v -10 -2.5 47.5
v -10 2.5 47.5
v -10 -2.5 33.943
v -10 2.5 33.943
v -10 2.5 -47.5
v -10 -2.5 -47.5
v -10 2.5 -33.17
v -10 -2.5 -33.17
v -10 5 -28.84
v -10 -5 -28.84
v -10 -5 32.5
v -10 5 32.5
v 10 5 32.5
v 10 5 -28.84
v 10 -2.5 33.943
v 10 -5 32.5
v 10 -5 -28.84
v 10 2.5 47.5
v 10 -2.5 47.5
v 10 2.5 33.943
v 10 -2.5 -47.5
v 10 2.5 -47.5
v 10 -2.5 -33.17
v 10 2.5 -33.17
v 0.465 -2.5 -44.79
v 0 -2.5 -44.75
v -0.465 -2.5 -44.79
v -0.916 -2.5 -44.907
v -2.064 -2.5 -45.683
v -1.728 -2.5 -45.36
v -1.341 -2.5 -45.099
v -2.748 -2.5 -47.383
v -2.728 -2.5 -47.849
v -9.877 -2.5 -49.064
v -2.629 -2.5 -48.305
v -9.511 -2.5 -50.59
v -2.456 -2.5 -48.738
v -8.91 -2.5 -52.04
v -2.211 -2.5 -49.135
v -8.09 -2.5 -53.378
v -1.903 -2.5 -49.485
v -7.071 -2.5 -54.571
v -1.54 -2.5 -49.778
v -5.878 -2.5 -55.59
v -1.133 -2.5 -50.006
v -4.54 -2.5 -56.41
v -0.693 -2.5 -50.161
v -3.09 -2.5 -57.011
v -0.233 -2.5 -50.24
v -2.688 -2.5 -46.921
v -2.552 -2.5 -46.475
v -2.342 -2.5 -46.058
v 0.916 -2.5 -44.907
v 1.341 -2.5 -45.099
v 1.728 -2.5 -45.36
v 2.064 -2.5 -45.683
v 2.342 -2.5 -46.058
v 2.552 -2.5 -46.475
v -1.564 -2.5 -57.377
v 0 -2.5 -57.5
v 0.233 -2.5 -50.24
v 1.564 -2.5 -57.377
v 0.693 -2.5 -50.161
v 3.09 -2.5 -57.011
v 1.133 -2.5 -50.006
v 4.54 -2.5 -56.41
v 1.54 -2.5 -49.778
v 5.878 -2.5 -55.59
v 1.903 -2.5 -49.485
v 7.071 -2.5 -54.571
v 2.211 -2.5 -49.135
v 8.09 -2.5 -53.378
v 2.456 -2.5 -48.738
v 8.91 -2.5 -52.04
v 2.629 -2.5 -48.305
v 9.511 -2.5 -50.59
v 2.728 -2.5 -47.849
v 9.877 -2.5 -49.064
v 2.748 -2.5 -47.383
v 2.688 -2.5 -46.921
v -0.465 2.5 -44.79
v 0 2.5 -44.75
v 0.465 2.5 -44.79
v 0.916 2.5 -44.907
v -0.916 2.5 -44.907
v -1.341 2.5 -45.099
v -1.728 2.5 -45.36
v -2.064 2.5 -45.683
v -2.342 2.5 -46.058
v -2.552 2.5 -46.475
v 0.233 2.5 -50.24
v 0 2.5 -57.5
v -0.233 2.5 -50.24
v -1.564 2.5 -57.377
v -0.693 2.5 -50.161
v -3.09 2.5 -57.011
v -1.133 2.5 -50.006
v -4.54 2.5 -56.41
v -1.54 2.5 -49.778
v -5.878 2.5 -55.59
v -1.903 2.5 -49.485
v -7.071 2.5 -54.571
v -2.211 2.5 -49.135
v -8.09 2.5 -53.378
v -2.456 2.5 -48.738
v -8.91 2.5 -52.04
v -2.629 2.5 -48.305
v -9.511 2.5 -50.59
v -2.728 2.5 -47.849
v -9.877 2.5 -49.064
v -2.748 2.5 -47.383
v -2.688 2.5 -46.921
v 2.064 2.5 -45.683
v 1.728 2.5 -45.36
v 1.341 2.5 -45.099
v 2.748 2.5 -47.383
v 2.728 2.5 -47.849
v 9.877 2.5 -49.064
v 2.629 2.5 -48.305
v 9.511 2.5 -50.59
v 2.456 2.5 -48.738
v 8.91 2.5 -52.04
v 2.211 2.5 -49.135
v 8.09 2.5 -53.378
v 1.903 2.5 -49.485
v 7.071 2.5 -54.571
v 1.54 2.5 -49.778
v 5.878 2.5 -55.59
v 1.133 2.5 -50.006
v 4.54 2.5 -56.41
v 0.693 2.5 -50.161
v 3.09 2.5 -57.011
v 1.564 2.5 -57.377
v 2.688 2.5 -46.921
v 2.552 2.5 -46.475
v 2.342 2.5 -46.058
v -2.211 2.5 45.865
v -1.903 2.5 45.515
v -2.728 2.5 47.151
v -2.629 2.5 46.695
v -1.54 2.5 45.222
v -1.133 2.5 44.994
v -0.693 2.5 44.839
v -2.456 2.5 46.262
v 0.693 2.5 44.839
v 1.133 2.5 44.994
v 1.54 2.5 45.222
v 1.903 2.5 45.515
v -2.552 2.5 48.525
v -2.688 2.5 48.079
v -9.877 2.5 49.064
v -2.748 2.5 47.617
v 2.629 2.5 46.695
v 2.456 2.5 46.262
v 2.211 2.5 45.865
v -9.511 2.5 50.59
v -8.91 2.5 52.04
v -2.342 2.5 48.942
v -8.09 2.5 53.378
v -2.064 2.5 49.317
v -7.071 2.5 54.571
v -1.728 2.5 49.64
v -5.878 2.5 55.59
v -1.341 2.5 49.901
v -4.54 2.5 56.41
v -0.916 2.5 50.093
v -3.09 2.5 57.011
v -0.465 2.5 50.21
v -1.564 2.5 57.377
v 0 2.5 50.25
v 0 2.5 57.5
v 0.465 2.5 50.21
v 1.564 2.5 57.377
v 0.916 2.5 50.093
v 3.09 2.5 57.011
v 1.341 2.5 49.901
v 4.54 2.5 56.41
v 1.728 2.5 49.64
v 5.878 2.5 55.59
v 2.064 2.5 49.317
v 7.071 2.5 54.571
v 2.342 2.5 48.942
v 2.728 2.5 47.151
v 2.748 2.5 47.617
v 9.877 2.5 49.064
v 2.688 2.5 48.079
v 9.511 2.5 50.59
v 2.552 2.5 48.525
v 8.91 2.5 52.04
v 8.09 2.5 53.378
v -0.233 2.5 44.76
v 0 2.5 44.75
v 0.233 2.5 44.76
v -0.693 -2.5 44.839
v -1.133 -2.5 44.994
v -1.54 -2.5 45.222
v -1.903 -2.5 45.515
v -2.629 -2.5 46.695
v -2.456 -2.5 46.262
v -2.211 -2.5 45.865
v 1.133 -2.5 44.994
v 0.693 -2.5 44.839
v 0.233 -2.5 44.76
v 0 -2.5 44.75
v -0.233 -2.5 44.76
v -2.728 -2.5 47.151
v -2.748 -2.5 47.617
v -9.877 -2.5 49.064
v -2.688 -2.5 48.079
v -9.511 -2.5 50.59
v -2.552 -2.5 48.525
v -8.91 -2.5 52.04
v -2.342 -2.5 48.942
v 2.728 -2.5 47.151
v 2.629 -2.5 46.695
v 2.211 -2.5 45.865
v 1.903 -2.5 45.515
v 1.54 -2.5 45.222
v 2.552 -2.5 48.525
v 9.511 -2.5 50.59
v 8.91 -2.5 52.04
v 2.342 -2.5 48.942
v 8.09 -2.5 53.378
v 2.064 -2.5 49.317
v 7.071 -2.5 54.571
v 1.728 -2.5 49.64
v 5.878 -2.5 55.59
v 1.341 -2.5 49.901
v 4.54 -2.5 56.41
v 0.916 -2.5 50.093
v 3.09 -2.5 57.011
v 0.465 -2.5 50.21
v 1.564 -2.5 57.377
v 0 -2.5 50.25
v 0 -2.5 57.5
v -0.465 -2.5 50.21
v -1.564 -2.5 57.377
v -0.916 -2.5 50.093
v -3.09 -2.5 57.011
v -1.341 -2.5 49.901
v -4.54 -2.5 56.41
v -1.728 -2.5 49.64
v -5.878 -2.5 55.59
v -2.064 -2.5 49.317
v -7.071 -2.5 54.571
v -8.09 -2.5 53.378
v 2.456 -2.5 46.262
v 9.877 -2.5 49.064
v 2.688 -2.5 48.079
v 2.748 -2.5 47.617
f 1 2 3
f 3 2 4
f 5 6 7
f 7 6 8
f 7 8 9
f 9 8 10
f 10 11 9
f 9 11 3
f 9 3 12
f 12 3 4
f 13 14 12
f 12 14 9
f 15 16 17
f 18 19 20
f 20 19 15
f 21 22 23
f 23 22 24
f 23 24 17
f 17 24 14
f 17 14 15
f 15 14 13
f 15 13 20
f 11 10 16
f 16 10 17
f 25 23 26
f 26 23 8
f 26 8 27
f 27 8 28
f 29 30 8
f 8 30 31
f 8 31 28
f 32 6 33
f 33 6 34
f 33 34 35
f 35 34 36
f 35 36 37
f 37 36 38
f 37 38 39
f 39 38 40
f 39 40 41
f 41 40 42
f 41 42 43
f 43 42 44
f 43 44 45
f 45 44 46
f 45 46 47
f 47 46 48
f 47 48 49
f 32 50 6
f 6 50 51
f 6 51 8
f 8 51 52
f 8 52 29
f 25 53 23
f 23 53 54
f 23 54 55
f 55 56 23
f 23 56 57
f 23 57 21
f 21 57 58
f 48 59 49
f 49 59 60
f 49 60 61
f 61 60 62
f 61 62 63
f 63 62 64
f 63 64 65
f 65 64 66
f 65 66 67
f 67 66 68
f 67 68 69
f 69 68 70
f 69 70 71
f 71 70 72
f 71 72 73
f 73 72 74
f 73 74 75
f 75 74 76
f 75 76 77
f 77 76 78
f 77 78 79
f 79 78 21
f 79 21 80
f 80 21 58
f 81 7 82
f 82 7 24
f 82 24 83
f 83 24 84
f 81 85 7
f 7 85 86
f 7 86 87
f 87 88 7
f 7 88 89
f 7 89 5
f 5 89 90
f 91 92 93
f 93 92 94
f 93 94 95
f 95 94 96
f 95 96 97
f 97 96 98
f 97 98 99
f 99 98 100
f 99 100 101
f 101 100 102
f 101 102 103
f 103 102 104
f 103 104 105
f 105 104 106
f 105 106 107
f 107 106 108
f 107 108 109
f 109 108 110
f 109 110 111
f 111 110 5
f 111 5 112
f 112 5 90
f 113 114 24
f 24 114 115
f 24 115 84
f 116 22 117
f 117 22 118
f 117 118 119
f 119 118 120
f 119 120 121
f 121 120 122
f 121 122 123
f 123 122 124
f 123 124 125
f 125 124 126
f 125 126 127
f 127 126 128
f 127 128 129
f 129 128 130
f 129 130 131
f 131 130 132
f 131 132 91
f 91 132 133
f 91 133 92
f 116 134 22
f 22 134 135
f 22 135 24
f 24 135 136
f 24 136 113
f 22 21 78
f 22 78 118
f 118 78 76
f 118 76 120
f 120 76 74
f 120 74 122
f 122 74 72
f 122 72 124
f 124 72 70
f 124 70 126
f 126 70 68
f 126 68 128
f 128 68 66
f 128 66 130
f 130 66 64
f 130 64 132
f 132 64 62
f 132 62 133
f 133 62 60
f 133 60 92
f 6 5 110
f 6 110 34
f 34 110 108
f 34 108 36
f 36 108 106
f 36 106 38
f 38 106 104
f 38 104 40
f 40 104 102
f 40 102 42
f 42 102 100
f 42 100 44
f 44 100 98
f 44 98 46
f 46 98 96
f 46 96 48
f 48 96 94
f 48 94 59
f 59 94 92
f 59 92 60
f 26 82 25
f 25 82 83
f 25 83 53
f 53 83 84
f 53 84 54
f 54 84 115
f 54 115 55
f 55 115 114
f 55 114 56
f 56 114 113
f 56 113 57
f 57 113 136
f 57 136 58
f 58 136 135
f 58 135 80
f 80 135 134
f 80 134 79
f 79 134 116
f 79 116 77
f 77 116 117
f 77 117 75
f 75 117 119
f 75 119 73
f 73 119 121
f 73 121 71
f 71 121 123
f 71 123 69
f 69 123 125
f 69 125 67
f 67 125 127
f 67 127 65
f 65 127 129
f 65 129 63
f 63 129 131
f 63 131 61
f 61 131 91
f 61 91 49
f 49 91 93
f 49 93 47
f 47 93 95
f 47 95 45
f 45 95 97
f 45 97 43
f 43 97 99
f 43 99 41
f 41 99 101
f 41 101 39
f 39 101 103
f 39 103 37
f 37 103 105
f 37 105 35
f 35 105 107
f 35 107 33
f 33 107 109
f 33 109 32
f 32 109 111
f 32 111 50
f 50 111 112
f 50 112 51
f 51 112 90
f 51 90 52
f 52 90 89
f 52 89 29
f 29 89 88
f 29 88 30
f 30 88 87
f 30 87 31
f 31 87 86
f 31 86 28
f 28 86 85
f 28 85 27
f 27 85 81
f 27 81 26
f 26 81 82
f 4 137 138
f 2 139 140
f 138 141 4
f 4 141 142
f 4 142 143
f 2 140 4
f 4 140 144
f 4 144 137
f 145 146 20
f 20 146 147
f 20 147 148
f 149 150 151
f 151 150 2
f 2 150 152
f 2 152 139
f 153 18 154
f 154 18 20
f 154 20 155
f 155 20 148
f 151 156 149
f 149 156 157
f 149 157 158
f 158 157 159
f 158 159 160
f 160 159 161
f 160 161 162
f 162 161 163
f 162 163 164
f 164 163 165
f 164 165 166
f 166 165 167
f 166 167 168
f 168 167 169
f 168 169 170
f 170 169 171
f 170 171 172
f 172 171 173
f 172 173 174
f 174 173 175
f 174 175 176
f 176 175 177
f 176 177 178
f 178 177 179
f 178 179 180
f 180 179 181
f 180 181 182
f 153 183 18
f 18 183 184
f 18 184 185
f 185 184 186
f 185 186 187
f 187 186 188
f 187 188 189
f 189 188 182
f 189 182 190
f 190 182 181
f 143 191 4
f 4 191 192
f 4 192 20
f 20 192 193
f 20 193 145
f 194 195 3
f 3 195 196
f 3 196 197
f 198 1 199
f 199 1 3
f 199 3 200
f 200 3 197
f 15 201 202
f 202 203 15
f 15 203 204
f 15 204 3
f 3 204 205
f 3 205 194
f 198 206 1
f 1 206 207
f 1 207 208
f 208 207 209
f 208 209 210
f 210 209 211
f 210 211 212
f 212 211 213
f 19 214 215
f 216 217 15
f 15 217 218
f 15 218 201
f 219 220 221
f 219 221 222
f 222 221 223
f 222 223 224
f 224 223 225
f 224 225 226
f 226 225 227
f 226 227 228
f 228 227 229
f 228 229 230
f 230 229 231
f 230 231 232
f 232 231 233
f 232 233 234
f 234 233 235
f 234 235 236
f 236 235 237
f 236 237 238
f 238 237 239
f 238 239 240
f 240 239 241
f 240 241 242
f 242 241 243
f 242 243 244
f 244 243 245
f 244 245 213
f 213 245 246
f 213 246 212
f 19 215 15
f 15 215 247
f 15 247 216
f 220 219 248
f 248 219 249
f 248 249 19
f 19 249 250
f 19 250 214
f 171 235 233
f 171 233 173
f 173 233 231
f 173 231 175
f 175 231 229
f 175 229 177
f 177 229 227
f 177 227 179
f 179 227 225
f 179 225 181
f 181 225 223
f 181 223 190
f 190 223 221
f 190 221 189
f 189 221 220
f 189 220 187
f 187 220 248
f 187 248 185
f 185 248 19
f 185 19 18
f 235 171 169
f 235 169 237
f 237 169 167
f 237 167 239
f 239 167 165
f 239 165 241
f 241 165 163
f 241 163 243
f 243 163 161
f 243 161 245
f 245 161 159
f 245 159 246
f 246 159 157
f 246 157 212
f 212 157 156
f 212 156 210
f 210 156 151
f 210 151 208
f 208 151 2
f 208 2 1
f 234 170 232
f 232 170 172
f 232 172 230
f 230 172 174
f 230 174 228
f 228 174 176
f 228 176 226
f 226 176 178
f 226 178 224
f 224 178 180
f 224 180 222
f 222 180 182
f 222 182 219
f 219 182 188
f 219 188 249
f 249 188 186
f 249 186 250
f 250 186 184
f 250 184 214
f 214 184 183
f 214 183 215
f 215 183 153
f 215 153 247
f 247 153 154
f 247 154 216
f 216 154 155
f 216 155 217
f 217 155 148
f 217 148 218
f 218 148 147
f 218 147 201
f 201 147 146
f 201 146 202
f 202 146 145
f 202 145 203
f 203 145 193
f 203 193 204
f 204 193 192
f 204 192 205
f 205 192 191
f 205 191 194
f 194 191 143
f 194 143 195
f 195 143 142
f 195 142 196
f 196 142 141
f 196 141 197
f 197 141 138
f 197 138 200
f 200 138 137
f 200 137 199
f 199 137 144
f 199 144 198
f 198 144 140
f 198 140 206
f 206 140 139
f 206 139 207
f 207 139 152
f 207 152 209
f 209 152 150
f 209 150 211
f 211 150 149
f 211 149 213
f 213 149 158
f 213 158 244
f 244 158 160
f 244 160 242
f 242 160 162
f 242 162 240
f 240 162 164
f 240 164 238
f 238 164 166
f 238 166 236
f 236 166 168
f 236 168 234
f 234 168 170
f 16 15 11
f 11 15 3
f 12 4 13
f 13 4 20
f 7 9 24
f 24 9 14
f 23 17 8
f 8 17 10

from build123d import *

# Parameters (mm, degrees)
BOSS_EXTRUDE1_DEPTH      = 37.5
BOSS_EXTRUDE1_DEPTH_BACK = 37.5
SKETCH1_W                = 20
SKETCH1_H                = 10
SKETCH3_W                = 20
SKETCH3_H                = 5
BOSS_EXTRUDE2_DEPTH      = 20
FILLET1_R                = 10
SKETCH4_R                = 2.75
CUT_EXTRUDE1_DEPTH       = 59.84301148
FILLET1_OF_MIRROR3_R     = 10
CHAMFER1_SIZE            = 8.660254038
CHAMFER1_SIZE_2          = 5


# Some blends are built 0.0001 mm under size
with BuildPart() as part:
    # Sketch1 → Boss-Extrude1 (new, two sides: drawn at the far end of the back side and taken through both)
    with BuildSketch(Plane.XY.offset(-BOSS_EXTRUDE1_DEPTH_BACK)):
        Rectangle(SKETCH1_W, SKETCH1_H)
    extrude(amount=BOSS_EXTRUDE1_DEPTH + BOSS_EXTRUDE1_DEPTH_BACK)

    # Sketch3 → Boss-Extrude2 (add)
    with BuildSketch(Plane(origin=(0, 0, -37.5), x_dir=(-1, 0, 0), z_dir=(0, 0, -1))):
        Rectangle(SKETCH3_W, SKETCH3_H)
    boss_extrude2 = extrude(amount=BOSS_EXTRUDE2_DEPTH)

    # Fillet1
    fillet1_edges = [part.edges().sort_by_distance(p)[0] for p in [
        (-10, 0, -57.5),
        (10, 0, -57.5),
    ]]
    fillet(fillet1_edges, radius=FILLET1_R - 0.0001)  # a hair under: the kernel refuses the full size

    # Sketch4 → Cut-Extrude1 (cut, through all)
    with BuildSketch(Plane(origin=(0, 2.5, 0), x_dir=(1, 0, 0), z_dir=(0, 1, 0))):
        with Locations(Location((0, 47.5, 0), (0, 0, 270))):
            Circle(SKETCH4_R)
    cut_extrude1 = extrude(amount=-CUT_EXTRUDE1_DEPTH, mode=Mode.SUBTRACT)

    # Mirror3: Boss-Extrude2, Cut-Extrude1 across plane
    add(boss_extrude2.mirror(Plane.XY))
    add(cut_extrude1.mirror(Plane.XY), mode=Mode.SUBTRACT)

    # Fillet1 of Mirror3
    fillet1_of_mirror3_edges = [part.edges().sort_by_distance(p)[0] for p in [
        (-10, 0, 57.5),
        (10, 0, 57.5),
    ]]
    fillet(fillet1_of_mirror3_edges, radius=FILLET1_OF_MIRROR3_R - 0.0001)  # a hair under: the kernel refuses the full size

    # Chamfer1
    # the kernel refuses this chamfer: 8.660254038, 5 mm, written as the material it takes off along each edge
    with BuildSketch(Plane(origin=(32.404819853, 5, -37.5), x_dir=(0, 0.019326765612700598, 0.9998132206222078), z_dir=(-1, 0, 0))) as chamfer1_piece_1_section:
        Polygon((CHAMFER1_SIZE * 0.999813220604, -CHAMFER1_SIZE * 0.0193267656124), (-CHAMFER1_SIZE_2 * 0.0193267656127, -CHAMFER1_SIZE_2 * 0.999813220622), (0, 0), align=None)
    chamfer1_piece_1 = extrude(amount=64.809639706, mode=Mode.PRIVATE)
    chamfer1_piece_1 = split(chamfer1_piece_1, bisect_by=Plane(origin=(0, 2.5, -34.039331058), z_dir=(0, 1, 0)), keep=Keep.TOP, mode=Mode.PRIVATE)
    add(chamfer1_piece_1, mode=Mode.SUBTRACT)
    with BuildSketch(Plane(origin=(-32.404819853, -5, -37.5), x_dir=(0, -0.019326765612700598, 0.9998132206222078), z_dir=(1, 0, 0))) as chamfer1_piece_2_section:
        Polygon((CHAMFER1_SIZE * 0.999813220604, -CHAMFER1_SIZE * 0.0193267656124), (-CHAMFER1_SIZE_2 * 0.0193267656127, -CHAMFER1_SIZE_2 * 0.999813220622), (0, 0), align=None)
    chamfer1_piece_2 = extrude(amount=64.809639706, mode=Mode.PRIVATE)
    chamfer1_piece_2 = split(chamfer1_piece_2, bisect_by=Plane(origin=(0, -2.5, -34.039331058), z_dir=(0, -1, 0)), keep=Keep.TOP, mode=Mode.PRIVATE)
    add(chamfer1_piece_2, mode=Mode.SUBTRACT)
    with BuildSketch(Plane(origin=(-32.404819853, -5, 37.5), x_dir=(0, 0.999813220622208, 0.019326765612700494), z_dir=(1, 0, 0))) as chamfer1_piece_3_section:
        Polygon((CHAMFER1_SIZE * 0.999813220604, -CHAMFER1_SIZE * 0.0193267656124), (-CHAMFER1_SIZE_2 * 0.0193267656127, -CHAMFER1_SIZE_2 * 0.999813220622), (0, 0), align=None)
    chamfer1_piece_3 = extrude(amount=64.809639706, mode=Mode.PRIVATE)
    chamfer1_piece_3 = split(chamfer1_piece_3, bisect_by=Plane(origin=(0, 2.5, 37.476500167), z_dir=(0, 1, 0)), keep=Keep.TOP, mode=Mode.PRIVATE)
    add(chamfer1_piece_3, mode=Mode.SUBTRACT)
    with BuildSketch(Plane(origin=(-32.404819853, -5, 37.5), x_dir=(0, 0.999813220622208, 0.019326765612700494), z_dir=(1, 0, 0))) as chamfer1_piece_4_section:
        Polygon((CHAMFER1_SIZE * 0.999813220604, -CHAMFER1_SIZE * 0.0193267656124), (-CHAMFER1_SIZE_2 * 0.0193267656127, -CHAMFER1_SIZE_2 * 0.999813220622), (0, 0), align=None)
    chamfer1_piece_4 = extrude(amount=64.809639706, mode=Mode.PRIVATE)
    chamfer1_piece_4 = split(chamfer1_piece_4, bisect_by=Plane(origin=(0, -2.5, 35.327003025), z_dir=(0, -1, 0)), keep=Keep.TOP, mode=Mode.PRIVATE)
    add(chamfer1_piece_4, mode=Mode.SUBTRACT)
    with BuildSketch(Plane(origin=(32.404819853, 5, 37.5), x_dir=(0, -0.999813220622208, 0.019326765612700494), z_dir=(-1, 0, 0))) as chamfer1_piece_5_section:
        Polygon((CHAMFER1_SIZE * 0.999813220604, -CHAMFER1_SIZE * 0.0193267656124), (-CHAMFER1_SIZE_2 * 0.0193267656127, -CHAMFER1_SIZE_2 * 0.999813220622), (0, 0), align=None)
    chamfer1_piece_5 = extrude(amount=64.809639706, mode=Mode.PRIVATE)
    chamfer1_piece_5 = split(chamfer1_piece_5, bisect_by=Plane(origin=(0, -2.5, 37.476500167), z_dir=(0, -1, 0)), keep=Keep.TOP, mode=Mode.PRIVATE)
    add(chamfer1_piece_5, mode=Mode.SUBTRACT)
    with BuildSketch(Plane(origin=(32.404819853, 5, 37.5), x_dir=(0, -0.999813220622208, 0.019326765612700494), z_dir=(-1, 0, 0))) as chamfer1_piece_6_section:
        Polygon((CHAMFER1_SIZE * 0.999813220604, -CHAMFER1_SIZE * 0.0193267656124), (-CHAMFER1_SIZE_2 * 0.0193267656127, -CHAMFER1_SIZE_2 * 0.999813220622), (0, 0), align=None)
    chamfer1_piece_6 = extrude(amount=64.809639706, mode=Mode.PRIVATE)
    chamfer1_piece_6 = split(chamfer1_piece_6, bisect_by=Plane(origin=(0, 2.5, 35.327003025), z_dir=(0, 1, 0)), keep=Keep.TOP, mode=Mode.PRIVATE)
    add(chamfer1_piece_6, mode=Mode.SUBTRACT)


solid = part.part
